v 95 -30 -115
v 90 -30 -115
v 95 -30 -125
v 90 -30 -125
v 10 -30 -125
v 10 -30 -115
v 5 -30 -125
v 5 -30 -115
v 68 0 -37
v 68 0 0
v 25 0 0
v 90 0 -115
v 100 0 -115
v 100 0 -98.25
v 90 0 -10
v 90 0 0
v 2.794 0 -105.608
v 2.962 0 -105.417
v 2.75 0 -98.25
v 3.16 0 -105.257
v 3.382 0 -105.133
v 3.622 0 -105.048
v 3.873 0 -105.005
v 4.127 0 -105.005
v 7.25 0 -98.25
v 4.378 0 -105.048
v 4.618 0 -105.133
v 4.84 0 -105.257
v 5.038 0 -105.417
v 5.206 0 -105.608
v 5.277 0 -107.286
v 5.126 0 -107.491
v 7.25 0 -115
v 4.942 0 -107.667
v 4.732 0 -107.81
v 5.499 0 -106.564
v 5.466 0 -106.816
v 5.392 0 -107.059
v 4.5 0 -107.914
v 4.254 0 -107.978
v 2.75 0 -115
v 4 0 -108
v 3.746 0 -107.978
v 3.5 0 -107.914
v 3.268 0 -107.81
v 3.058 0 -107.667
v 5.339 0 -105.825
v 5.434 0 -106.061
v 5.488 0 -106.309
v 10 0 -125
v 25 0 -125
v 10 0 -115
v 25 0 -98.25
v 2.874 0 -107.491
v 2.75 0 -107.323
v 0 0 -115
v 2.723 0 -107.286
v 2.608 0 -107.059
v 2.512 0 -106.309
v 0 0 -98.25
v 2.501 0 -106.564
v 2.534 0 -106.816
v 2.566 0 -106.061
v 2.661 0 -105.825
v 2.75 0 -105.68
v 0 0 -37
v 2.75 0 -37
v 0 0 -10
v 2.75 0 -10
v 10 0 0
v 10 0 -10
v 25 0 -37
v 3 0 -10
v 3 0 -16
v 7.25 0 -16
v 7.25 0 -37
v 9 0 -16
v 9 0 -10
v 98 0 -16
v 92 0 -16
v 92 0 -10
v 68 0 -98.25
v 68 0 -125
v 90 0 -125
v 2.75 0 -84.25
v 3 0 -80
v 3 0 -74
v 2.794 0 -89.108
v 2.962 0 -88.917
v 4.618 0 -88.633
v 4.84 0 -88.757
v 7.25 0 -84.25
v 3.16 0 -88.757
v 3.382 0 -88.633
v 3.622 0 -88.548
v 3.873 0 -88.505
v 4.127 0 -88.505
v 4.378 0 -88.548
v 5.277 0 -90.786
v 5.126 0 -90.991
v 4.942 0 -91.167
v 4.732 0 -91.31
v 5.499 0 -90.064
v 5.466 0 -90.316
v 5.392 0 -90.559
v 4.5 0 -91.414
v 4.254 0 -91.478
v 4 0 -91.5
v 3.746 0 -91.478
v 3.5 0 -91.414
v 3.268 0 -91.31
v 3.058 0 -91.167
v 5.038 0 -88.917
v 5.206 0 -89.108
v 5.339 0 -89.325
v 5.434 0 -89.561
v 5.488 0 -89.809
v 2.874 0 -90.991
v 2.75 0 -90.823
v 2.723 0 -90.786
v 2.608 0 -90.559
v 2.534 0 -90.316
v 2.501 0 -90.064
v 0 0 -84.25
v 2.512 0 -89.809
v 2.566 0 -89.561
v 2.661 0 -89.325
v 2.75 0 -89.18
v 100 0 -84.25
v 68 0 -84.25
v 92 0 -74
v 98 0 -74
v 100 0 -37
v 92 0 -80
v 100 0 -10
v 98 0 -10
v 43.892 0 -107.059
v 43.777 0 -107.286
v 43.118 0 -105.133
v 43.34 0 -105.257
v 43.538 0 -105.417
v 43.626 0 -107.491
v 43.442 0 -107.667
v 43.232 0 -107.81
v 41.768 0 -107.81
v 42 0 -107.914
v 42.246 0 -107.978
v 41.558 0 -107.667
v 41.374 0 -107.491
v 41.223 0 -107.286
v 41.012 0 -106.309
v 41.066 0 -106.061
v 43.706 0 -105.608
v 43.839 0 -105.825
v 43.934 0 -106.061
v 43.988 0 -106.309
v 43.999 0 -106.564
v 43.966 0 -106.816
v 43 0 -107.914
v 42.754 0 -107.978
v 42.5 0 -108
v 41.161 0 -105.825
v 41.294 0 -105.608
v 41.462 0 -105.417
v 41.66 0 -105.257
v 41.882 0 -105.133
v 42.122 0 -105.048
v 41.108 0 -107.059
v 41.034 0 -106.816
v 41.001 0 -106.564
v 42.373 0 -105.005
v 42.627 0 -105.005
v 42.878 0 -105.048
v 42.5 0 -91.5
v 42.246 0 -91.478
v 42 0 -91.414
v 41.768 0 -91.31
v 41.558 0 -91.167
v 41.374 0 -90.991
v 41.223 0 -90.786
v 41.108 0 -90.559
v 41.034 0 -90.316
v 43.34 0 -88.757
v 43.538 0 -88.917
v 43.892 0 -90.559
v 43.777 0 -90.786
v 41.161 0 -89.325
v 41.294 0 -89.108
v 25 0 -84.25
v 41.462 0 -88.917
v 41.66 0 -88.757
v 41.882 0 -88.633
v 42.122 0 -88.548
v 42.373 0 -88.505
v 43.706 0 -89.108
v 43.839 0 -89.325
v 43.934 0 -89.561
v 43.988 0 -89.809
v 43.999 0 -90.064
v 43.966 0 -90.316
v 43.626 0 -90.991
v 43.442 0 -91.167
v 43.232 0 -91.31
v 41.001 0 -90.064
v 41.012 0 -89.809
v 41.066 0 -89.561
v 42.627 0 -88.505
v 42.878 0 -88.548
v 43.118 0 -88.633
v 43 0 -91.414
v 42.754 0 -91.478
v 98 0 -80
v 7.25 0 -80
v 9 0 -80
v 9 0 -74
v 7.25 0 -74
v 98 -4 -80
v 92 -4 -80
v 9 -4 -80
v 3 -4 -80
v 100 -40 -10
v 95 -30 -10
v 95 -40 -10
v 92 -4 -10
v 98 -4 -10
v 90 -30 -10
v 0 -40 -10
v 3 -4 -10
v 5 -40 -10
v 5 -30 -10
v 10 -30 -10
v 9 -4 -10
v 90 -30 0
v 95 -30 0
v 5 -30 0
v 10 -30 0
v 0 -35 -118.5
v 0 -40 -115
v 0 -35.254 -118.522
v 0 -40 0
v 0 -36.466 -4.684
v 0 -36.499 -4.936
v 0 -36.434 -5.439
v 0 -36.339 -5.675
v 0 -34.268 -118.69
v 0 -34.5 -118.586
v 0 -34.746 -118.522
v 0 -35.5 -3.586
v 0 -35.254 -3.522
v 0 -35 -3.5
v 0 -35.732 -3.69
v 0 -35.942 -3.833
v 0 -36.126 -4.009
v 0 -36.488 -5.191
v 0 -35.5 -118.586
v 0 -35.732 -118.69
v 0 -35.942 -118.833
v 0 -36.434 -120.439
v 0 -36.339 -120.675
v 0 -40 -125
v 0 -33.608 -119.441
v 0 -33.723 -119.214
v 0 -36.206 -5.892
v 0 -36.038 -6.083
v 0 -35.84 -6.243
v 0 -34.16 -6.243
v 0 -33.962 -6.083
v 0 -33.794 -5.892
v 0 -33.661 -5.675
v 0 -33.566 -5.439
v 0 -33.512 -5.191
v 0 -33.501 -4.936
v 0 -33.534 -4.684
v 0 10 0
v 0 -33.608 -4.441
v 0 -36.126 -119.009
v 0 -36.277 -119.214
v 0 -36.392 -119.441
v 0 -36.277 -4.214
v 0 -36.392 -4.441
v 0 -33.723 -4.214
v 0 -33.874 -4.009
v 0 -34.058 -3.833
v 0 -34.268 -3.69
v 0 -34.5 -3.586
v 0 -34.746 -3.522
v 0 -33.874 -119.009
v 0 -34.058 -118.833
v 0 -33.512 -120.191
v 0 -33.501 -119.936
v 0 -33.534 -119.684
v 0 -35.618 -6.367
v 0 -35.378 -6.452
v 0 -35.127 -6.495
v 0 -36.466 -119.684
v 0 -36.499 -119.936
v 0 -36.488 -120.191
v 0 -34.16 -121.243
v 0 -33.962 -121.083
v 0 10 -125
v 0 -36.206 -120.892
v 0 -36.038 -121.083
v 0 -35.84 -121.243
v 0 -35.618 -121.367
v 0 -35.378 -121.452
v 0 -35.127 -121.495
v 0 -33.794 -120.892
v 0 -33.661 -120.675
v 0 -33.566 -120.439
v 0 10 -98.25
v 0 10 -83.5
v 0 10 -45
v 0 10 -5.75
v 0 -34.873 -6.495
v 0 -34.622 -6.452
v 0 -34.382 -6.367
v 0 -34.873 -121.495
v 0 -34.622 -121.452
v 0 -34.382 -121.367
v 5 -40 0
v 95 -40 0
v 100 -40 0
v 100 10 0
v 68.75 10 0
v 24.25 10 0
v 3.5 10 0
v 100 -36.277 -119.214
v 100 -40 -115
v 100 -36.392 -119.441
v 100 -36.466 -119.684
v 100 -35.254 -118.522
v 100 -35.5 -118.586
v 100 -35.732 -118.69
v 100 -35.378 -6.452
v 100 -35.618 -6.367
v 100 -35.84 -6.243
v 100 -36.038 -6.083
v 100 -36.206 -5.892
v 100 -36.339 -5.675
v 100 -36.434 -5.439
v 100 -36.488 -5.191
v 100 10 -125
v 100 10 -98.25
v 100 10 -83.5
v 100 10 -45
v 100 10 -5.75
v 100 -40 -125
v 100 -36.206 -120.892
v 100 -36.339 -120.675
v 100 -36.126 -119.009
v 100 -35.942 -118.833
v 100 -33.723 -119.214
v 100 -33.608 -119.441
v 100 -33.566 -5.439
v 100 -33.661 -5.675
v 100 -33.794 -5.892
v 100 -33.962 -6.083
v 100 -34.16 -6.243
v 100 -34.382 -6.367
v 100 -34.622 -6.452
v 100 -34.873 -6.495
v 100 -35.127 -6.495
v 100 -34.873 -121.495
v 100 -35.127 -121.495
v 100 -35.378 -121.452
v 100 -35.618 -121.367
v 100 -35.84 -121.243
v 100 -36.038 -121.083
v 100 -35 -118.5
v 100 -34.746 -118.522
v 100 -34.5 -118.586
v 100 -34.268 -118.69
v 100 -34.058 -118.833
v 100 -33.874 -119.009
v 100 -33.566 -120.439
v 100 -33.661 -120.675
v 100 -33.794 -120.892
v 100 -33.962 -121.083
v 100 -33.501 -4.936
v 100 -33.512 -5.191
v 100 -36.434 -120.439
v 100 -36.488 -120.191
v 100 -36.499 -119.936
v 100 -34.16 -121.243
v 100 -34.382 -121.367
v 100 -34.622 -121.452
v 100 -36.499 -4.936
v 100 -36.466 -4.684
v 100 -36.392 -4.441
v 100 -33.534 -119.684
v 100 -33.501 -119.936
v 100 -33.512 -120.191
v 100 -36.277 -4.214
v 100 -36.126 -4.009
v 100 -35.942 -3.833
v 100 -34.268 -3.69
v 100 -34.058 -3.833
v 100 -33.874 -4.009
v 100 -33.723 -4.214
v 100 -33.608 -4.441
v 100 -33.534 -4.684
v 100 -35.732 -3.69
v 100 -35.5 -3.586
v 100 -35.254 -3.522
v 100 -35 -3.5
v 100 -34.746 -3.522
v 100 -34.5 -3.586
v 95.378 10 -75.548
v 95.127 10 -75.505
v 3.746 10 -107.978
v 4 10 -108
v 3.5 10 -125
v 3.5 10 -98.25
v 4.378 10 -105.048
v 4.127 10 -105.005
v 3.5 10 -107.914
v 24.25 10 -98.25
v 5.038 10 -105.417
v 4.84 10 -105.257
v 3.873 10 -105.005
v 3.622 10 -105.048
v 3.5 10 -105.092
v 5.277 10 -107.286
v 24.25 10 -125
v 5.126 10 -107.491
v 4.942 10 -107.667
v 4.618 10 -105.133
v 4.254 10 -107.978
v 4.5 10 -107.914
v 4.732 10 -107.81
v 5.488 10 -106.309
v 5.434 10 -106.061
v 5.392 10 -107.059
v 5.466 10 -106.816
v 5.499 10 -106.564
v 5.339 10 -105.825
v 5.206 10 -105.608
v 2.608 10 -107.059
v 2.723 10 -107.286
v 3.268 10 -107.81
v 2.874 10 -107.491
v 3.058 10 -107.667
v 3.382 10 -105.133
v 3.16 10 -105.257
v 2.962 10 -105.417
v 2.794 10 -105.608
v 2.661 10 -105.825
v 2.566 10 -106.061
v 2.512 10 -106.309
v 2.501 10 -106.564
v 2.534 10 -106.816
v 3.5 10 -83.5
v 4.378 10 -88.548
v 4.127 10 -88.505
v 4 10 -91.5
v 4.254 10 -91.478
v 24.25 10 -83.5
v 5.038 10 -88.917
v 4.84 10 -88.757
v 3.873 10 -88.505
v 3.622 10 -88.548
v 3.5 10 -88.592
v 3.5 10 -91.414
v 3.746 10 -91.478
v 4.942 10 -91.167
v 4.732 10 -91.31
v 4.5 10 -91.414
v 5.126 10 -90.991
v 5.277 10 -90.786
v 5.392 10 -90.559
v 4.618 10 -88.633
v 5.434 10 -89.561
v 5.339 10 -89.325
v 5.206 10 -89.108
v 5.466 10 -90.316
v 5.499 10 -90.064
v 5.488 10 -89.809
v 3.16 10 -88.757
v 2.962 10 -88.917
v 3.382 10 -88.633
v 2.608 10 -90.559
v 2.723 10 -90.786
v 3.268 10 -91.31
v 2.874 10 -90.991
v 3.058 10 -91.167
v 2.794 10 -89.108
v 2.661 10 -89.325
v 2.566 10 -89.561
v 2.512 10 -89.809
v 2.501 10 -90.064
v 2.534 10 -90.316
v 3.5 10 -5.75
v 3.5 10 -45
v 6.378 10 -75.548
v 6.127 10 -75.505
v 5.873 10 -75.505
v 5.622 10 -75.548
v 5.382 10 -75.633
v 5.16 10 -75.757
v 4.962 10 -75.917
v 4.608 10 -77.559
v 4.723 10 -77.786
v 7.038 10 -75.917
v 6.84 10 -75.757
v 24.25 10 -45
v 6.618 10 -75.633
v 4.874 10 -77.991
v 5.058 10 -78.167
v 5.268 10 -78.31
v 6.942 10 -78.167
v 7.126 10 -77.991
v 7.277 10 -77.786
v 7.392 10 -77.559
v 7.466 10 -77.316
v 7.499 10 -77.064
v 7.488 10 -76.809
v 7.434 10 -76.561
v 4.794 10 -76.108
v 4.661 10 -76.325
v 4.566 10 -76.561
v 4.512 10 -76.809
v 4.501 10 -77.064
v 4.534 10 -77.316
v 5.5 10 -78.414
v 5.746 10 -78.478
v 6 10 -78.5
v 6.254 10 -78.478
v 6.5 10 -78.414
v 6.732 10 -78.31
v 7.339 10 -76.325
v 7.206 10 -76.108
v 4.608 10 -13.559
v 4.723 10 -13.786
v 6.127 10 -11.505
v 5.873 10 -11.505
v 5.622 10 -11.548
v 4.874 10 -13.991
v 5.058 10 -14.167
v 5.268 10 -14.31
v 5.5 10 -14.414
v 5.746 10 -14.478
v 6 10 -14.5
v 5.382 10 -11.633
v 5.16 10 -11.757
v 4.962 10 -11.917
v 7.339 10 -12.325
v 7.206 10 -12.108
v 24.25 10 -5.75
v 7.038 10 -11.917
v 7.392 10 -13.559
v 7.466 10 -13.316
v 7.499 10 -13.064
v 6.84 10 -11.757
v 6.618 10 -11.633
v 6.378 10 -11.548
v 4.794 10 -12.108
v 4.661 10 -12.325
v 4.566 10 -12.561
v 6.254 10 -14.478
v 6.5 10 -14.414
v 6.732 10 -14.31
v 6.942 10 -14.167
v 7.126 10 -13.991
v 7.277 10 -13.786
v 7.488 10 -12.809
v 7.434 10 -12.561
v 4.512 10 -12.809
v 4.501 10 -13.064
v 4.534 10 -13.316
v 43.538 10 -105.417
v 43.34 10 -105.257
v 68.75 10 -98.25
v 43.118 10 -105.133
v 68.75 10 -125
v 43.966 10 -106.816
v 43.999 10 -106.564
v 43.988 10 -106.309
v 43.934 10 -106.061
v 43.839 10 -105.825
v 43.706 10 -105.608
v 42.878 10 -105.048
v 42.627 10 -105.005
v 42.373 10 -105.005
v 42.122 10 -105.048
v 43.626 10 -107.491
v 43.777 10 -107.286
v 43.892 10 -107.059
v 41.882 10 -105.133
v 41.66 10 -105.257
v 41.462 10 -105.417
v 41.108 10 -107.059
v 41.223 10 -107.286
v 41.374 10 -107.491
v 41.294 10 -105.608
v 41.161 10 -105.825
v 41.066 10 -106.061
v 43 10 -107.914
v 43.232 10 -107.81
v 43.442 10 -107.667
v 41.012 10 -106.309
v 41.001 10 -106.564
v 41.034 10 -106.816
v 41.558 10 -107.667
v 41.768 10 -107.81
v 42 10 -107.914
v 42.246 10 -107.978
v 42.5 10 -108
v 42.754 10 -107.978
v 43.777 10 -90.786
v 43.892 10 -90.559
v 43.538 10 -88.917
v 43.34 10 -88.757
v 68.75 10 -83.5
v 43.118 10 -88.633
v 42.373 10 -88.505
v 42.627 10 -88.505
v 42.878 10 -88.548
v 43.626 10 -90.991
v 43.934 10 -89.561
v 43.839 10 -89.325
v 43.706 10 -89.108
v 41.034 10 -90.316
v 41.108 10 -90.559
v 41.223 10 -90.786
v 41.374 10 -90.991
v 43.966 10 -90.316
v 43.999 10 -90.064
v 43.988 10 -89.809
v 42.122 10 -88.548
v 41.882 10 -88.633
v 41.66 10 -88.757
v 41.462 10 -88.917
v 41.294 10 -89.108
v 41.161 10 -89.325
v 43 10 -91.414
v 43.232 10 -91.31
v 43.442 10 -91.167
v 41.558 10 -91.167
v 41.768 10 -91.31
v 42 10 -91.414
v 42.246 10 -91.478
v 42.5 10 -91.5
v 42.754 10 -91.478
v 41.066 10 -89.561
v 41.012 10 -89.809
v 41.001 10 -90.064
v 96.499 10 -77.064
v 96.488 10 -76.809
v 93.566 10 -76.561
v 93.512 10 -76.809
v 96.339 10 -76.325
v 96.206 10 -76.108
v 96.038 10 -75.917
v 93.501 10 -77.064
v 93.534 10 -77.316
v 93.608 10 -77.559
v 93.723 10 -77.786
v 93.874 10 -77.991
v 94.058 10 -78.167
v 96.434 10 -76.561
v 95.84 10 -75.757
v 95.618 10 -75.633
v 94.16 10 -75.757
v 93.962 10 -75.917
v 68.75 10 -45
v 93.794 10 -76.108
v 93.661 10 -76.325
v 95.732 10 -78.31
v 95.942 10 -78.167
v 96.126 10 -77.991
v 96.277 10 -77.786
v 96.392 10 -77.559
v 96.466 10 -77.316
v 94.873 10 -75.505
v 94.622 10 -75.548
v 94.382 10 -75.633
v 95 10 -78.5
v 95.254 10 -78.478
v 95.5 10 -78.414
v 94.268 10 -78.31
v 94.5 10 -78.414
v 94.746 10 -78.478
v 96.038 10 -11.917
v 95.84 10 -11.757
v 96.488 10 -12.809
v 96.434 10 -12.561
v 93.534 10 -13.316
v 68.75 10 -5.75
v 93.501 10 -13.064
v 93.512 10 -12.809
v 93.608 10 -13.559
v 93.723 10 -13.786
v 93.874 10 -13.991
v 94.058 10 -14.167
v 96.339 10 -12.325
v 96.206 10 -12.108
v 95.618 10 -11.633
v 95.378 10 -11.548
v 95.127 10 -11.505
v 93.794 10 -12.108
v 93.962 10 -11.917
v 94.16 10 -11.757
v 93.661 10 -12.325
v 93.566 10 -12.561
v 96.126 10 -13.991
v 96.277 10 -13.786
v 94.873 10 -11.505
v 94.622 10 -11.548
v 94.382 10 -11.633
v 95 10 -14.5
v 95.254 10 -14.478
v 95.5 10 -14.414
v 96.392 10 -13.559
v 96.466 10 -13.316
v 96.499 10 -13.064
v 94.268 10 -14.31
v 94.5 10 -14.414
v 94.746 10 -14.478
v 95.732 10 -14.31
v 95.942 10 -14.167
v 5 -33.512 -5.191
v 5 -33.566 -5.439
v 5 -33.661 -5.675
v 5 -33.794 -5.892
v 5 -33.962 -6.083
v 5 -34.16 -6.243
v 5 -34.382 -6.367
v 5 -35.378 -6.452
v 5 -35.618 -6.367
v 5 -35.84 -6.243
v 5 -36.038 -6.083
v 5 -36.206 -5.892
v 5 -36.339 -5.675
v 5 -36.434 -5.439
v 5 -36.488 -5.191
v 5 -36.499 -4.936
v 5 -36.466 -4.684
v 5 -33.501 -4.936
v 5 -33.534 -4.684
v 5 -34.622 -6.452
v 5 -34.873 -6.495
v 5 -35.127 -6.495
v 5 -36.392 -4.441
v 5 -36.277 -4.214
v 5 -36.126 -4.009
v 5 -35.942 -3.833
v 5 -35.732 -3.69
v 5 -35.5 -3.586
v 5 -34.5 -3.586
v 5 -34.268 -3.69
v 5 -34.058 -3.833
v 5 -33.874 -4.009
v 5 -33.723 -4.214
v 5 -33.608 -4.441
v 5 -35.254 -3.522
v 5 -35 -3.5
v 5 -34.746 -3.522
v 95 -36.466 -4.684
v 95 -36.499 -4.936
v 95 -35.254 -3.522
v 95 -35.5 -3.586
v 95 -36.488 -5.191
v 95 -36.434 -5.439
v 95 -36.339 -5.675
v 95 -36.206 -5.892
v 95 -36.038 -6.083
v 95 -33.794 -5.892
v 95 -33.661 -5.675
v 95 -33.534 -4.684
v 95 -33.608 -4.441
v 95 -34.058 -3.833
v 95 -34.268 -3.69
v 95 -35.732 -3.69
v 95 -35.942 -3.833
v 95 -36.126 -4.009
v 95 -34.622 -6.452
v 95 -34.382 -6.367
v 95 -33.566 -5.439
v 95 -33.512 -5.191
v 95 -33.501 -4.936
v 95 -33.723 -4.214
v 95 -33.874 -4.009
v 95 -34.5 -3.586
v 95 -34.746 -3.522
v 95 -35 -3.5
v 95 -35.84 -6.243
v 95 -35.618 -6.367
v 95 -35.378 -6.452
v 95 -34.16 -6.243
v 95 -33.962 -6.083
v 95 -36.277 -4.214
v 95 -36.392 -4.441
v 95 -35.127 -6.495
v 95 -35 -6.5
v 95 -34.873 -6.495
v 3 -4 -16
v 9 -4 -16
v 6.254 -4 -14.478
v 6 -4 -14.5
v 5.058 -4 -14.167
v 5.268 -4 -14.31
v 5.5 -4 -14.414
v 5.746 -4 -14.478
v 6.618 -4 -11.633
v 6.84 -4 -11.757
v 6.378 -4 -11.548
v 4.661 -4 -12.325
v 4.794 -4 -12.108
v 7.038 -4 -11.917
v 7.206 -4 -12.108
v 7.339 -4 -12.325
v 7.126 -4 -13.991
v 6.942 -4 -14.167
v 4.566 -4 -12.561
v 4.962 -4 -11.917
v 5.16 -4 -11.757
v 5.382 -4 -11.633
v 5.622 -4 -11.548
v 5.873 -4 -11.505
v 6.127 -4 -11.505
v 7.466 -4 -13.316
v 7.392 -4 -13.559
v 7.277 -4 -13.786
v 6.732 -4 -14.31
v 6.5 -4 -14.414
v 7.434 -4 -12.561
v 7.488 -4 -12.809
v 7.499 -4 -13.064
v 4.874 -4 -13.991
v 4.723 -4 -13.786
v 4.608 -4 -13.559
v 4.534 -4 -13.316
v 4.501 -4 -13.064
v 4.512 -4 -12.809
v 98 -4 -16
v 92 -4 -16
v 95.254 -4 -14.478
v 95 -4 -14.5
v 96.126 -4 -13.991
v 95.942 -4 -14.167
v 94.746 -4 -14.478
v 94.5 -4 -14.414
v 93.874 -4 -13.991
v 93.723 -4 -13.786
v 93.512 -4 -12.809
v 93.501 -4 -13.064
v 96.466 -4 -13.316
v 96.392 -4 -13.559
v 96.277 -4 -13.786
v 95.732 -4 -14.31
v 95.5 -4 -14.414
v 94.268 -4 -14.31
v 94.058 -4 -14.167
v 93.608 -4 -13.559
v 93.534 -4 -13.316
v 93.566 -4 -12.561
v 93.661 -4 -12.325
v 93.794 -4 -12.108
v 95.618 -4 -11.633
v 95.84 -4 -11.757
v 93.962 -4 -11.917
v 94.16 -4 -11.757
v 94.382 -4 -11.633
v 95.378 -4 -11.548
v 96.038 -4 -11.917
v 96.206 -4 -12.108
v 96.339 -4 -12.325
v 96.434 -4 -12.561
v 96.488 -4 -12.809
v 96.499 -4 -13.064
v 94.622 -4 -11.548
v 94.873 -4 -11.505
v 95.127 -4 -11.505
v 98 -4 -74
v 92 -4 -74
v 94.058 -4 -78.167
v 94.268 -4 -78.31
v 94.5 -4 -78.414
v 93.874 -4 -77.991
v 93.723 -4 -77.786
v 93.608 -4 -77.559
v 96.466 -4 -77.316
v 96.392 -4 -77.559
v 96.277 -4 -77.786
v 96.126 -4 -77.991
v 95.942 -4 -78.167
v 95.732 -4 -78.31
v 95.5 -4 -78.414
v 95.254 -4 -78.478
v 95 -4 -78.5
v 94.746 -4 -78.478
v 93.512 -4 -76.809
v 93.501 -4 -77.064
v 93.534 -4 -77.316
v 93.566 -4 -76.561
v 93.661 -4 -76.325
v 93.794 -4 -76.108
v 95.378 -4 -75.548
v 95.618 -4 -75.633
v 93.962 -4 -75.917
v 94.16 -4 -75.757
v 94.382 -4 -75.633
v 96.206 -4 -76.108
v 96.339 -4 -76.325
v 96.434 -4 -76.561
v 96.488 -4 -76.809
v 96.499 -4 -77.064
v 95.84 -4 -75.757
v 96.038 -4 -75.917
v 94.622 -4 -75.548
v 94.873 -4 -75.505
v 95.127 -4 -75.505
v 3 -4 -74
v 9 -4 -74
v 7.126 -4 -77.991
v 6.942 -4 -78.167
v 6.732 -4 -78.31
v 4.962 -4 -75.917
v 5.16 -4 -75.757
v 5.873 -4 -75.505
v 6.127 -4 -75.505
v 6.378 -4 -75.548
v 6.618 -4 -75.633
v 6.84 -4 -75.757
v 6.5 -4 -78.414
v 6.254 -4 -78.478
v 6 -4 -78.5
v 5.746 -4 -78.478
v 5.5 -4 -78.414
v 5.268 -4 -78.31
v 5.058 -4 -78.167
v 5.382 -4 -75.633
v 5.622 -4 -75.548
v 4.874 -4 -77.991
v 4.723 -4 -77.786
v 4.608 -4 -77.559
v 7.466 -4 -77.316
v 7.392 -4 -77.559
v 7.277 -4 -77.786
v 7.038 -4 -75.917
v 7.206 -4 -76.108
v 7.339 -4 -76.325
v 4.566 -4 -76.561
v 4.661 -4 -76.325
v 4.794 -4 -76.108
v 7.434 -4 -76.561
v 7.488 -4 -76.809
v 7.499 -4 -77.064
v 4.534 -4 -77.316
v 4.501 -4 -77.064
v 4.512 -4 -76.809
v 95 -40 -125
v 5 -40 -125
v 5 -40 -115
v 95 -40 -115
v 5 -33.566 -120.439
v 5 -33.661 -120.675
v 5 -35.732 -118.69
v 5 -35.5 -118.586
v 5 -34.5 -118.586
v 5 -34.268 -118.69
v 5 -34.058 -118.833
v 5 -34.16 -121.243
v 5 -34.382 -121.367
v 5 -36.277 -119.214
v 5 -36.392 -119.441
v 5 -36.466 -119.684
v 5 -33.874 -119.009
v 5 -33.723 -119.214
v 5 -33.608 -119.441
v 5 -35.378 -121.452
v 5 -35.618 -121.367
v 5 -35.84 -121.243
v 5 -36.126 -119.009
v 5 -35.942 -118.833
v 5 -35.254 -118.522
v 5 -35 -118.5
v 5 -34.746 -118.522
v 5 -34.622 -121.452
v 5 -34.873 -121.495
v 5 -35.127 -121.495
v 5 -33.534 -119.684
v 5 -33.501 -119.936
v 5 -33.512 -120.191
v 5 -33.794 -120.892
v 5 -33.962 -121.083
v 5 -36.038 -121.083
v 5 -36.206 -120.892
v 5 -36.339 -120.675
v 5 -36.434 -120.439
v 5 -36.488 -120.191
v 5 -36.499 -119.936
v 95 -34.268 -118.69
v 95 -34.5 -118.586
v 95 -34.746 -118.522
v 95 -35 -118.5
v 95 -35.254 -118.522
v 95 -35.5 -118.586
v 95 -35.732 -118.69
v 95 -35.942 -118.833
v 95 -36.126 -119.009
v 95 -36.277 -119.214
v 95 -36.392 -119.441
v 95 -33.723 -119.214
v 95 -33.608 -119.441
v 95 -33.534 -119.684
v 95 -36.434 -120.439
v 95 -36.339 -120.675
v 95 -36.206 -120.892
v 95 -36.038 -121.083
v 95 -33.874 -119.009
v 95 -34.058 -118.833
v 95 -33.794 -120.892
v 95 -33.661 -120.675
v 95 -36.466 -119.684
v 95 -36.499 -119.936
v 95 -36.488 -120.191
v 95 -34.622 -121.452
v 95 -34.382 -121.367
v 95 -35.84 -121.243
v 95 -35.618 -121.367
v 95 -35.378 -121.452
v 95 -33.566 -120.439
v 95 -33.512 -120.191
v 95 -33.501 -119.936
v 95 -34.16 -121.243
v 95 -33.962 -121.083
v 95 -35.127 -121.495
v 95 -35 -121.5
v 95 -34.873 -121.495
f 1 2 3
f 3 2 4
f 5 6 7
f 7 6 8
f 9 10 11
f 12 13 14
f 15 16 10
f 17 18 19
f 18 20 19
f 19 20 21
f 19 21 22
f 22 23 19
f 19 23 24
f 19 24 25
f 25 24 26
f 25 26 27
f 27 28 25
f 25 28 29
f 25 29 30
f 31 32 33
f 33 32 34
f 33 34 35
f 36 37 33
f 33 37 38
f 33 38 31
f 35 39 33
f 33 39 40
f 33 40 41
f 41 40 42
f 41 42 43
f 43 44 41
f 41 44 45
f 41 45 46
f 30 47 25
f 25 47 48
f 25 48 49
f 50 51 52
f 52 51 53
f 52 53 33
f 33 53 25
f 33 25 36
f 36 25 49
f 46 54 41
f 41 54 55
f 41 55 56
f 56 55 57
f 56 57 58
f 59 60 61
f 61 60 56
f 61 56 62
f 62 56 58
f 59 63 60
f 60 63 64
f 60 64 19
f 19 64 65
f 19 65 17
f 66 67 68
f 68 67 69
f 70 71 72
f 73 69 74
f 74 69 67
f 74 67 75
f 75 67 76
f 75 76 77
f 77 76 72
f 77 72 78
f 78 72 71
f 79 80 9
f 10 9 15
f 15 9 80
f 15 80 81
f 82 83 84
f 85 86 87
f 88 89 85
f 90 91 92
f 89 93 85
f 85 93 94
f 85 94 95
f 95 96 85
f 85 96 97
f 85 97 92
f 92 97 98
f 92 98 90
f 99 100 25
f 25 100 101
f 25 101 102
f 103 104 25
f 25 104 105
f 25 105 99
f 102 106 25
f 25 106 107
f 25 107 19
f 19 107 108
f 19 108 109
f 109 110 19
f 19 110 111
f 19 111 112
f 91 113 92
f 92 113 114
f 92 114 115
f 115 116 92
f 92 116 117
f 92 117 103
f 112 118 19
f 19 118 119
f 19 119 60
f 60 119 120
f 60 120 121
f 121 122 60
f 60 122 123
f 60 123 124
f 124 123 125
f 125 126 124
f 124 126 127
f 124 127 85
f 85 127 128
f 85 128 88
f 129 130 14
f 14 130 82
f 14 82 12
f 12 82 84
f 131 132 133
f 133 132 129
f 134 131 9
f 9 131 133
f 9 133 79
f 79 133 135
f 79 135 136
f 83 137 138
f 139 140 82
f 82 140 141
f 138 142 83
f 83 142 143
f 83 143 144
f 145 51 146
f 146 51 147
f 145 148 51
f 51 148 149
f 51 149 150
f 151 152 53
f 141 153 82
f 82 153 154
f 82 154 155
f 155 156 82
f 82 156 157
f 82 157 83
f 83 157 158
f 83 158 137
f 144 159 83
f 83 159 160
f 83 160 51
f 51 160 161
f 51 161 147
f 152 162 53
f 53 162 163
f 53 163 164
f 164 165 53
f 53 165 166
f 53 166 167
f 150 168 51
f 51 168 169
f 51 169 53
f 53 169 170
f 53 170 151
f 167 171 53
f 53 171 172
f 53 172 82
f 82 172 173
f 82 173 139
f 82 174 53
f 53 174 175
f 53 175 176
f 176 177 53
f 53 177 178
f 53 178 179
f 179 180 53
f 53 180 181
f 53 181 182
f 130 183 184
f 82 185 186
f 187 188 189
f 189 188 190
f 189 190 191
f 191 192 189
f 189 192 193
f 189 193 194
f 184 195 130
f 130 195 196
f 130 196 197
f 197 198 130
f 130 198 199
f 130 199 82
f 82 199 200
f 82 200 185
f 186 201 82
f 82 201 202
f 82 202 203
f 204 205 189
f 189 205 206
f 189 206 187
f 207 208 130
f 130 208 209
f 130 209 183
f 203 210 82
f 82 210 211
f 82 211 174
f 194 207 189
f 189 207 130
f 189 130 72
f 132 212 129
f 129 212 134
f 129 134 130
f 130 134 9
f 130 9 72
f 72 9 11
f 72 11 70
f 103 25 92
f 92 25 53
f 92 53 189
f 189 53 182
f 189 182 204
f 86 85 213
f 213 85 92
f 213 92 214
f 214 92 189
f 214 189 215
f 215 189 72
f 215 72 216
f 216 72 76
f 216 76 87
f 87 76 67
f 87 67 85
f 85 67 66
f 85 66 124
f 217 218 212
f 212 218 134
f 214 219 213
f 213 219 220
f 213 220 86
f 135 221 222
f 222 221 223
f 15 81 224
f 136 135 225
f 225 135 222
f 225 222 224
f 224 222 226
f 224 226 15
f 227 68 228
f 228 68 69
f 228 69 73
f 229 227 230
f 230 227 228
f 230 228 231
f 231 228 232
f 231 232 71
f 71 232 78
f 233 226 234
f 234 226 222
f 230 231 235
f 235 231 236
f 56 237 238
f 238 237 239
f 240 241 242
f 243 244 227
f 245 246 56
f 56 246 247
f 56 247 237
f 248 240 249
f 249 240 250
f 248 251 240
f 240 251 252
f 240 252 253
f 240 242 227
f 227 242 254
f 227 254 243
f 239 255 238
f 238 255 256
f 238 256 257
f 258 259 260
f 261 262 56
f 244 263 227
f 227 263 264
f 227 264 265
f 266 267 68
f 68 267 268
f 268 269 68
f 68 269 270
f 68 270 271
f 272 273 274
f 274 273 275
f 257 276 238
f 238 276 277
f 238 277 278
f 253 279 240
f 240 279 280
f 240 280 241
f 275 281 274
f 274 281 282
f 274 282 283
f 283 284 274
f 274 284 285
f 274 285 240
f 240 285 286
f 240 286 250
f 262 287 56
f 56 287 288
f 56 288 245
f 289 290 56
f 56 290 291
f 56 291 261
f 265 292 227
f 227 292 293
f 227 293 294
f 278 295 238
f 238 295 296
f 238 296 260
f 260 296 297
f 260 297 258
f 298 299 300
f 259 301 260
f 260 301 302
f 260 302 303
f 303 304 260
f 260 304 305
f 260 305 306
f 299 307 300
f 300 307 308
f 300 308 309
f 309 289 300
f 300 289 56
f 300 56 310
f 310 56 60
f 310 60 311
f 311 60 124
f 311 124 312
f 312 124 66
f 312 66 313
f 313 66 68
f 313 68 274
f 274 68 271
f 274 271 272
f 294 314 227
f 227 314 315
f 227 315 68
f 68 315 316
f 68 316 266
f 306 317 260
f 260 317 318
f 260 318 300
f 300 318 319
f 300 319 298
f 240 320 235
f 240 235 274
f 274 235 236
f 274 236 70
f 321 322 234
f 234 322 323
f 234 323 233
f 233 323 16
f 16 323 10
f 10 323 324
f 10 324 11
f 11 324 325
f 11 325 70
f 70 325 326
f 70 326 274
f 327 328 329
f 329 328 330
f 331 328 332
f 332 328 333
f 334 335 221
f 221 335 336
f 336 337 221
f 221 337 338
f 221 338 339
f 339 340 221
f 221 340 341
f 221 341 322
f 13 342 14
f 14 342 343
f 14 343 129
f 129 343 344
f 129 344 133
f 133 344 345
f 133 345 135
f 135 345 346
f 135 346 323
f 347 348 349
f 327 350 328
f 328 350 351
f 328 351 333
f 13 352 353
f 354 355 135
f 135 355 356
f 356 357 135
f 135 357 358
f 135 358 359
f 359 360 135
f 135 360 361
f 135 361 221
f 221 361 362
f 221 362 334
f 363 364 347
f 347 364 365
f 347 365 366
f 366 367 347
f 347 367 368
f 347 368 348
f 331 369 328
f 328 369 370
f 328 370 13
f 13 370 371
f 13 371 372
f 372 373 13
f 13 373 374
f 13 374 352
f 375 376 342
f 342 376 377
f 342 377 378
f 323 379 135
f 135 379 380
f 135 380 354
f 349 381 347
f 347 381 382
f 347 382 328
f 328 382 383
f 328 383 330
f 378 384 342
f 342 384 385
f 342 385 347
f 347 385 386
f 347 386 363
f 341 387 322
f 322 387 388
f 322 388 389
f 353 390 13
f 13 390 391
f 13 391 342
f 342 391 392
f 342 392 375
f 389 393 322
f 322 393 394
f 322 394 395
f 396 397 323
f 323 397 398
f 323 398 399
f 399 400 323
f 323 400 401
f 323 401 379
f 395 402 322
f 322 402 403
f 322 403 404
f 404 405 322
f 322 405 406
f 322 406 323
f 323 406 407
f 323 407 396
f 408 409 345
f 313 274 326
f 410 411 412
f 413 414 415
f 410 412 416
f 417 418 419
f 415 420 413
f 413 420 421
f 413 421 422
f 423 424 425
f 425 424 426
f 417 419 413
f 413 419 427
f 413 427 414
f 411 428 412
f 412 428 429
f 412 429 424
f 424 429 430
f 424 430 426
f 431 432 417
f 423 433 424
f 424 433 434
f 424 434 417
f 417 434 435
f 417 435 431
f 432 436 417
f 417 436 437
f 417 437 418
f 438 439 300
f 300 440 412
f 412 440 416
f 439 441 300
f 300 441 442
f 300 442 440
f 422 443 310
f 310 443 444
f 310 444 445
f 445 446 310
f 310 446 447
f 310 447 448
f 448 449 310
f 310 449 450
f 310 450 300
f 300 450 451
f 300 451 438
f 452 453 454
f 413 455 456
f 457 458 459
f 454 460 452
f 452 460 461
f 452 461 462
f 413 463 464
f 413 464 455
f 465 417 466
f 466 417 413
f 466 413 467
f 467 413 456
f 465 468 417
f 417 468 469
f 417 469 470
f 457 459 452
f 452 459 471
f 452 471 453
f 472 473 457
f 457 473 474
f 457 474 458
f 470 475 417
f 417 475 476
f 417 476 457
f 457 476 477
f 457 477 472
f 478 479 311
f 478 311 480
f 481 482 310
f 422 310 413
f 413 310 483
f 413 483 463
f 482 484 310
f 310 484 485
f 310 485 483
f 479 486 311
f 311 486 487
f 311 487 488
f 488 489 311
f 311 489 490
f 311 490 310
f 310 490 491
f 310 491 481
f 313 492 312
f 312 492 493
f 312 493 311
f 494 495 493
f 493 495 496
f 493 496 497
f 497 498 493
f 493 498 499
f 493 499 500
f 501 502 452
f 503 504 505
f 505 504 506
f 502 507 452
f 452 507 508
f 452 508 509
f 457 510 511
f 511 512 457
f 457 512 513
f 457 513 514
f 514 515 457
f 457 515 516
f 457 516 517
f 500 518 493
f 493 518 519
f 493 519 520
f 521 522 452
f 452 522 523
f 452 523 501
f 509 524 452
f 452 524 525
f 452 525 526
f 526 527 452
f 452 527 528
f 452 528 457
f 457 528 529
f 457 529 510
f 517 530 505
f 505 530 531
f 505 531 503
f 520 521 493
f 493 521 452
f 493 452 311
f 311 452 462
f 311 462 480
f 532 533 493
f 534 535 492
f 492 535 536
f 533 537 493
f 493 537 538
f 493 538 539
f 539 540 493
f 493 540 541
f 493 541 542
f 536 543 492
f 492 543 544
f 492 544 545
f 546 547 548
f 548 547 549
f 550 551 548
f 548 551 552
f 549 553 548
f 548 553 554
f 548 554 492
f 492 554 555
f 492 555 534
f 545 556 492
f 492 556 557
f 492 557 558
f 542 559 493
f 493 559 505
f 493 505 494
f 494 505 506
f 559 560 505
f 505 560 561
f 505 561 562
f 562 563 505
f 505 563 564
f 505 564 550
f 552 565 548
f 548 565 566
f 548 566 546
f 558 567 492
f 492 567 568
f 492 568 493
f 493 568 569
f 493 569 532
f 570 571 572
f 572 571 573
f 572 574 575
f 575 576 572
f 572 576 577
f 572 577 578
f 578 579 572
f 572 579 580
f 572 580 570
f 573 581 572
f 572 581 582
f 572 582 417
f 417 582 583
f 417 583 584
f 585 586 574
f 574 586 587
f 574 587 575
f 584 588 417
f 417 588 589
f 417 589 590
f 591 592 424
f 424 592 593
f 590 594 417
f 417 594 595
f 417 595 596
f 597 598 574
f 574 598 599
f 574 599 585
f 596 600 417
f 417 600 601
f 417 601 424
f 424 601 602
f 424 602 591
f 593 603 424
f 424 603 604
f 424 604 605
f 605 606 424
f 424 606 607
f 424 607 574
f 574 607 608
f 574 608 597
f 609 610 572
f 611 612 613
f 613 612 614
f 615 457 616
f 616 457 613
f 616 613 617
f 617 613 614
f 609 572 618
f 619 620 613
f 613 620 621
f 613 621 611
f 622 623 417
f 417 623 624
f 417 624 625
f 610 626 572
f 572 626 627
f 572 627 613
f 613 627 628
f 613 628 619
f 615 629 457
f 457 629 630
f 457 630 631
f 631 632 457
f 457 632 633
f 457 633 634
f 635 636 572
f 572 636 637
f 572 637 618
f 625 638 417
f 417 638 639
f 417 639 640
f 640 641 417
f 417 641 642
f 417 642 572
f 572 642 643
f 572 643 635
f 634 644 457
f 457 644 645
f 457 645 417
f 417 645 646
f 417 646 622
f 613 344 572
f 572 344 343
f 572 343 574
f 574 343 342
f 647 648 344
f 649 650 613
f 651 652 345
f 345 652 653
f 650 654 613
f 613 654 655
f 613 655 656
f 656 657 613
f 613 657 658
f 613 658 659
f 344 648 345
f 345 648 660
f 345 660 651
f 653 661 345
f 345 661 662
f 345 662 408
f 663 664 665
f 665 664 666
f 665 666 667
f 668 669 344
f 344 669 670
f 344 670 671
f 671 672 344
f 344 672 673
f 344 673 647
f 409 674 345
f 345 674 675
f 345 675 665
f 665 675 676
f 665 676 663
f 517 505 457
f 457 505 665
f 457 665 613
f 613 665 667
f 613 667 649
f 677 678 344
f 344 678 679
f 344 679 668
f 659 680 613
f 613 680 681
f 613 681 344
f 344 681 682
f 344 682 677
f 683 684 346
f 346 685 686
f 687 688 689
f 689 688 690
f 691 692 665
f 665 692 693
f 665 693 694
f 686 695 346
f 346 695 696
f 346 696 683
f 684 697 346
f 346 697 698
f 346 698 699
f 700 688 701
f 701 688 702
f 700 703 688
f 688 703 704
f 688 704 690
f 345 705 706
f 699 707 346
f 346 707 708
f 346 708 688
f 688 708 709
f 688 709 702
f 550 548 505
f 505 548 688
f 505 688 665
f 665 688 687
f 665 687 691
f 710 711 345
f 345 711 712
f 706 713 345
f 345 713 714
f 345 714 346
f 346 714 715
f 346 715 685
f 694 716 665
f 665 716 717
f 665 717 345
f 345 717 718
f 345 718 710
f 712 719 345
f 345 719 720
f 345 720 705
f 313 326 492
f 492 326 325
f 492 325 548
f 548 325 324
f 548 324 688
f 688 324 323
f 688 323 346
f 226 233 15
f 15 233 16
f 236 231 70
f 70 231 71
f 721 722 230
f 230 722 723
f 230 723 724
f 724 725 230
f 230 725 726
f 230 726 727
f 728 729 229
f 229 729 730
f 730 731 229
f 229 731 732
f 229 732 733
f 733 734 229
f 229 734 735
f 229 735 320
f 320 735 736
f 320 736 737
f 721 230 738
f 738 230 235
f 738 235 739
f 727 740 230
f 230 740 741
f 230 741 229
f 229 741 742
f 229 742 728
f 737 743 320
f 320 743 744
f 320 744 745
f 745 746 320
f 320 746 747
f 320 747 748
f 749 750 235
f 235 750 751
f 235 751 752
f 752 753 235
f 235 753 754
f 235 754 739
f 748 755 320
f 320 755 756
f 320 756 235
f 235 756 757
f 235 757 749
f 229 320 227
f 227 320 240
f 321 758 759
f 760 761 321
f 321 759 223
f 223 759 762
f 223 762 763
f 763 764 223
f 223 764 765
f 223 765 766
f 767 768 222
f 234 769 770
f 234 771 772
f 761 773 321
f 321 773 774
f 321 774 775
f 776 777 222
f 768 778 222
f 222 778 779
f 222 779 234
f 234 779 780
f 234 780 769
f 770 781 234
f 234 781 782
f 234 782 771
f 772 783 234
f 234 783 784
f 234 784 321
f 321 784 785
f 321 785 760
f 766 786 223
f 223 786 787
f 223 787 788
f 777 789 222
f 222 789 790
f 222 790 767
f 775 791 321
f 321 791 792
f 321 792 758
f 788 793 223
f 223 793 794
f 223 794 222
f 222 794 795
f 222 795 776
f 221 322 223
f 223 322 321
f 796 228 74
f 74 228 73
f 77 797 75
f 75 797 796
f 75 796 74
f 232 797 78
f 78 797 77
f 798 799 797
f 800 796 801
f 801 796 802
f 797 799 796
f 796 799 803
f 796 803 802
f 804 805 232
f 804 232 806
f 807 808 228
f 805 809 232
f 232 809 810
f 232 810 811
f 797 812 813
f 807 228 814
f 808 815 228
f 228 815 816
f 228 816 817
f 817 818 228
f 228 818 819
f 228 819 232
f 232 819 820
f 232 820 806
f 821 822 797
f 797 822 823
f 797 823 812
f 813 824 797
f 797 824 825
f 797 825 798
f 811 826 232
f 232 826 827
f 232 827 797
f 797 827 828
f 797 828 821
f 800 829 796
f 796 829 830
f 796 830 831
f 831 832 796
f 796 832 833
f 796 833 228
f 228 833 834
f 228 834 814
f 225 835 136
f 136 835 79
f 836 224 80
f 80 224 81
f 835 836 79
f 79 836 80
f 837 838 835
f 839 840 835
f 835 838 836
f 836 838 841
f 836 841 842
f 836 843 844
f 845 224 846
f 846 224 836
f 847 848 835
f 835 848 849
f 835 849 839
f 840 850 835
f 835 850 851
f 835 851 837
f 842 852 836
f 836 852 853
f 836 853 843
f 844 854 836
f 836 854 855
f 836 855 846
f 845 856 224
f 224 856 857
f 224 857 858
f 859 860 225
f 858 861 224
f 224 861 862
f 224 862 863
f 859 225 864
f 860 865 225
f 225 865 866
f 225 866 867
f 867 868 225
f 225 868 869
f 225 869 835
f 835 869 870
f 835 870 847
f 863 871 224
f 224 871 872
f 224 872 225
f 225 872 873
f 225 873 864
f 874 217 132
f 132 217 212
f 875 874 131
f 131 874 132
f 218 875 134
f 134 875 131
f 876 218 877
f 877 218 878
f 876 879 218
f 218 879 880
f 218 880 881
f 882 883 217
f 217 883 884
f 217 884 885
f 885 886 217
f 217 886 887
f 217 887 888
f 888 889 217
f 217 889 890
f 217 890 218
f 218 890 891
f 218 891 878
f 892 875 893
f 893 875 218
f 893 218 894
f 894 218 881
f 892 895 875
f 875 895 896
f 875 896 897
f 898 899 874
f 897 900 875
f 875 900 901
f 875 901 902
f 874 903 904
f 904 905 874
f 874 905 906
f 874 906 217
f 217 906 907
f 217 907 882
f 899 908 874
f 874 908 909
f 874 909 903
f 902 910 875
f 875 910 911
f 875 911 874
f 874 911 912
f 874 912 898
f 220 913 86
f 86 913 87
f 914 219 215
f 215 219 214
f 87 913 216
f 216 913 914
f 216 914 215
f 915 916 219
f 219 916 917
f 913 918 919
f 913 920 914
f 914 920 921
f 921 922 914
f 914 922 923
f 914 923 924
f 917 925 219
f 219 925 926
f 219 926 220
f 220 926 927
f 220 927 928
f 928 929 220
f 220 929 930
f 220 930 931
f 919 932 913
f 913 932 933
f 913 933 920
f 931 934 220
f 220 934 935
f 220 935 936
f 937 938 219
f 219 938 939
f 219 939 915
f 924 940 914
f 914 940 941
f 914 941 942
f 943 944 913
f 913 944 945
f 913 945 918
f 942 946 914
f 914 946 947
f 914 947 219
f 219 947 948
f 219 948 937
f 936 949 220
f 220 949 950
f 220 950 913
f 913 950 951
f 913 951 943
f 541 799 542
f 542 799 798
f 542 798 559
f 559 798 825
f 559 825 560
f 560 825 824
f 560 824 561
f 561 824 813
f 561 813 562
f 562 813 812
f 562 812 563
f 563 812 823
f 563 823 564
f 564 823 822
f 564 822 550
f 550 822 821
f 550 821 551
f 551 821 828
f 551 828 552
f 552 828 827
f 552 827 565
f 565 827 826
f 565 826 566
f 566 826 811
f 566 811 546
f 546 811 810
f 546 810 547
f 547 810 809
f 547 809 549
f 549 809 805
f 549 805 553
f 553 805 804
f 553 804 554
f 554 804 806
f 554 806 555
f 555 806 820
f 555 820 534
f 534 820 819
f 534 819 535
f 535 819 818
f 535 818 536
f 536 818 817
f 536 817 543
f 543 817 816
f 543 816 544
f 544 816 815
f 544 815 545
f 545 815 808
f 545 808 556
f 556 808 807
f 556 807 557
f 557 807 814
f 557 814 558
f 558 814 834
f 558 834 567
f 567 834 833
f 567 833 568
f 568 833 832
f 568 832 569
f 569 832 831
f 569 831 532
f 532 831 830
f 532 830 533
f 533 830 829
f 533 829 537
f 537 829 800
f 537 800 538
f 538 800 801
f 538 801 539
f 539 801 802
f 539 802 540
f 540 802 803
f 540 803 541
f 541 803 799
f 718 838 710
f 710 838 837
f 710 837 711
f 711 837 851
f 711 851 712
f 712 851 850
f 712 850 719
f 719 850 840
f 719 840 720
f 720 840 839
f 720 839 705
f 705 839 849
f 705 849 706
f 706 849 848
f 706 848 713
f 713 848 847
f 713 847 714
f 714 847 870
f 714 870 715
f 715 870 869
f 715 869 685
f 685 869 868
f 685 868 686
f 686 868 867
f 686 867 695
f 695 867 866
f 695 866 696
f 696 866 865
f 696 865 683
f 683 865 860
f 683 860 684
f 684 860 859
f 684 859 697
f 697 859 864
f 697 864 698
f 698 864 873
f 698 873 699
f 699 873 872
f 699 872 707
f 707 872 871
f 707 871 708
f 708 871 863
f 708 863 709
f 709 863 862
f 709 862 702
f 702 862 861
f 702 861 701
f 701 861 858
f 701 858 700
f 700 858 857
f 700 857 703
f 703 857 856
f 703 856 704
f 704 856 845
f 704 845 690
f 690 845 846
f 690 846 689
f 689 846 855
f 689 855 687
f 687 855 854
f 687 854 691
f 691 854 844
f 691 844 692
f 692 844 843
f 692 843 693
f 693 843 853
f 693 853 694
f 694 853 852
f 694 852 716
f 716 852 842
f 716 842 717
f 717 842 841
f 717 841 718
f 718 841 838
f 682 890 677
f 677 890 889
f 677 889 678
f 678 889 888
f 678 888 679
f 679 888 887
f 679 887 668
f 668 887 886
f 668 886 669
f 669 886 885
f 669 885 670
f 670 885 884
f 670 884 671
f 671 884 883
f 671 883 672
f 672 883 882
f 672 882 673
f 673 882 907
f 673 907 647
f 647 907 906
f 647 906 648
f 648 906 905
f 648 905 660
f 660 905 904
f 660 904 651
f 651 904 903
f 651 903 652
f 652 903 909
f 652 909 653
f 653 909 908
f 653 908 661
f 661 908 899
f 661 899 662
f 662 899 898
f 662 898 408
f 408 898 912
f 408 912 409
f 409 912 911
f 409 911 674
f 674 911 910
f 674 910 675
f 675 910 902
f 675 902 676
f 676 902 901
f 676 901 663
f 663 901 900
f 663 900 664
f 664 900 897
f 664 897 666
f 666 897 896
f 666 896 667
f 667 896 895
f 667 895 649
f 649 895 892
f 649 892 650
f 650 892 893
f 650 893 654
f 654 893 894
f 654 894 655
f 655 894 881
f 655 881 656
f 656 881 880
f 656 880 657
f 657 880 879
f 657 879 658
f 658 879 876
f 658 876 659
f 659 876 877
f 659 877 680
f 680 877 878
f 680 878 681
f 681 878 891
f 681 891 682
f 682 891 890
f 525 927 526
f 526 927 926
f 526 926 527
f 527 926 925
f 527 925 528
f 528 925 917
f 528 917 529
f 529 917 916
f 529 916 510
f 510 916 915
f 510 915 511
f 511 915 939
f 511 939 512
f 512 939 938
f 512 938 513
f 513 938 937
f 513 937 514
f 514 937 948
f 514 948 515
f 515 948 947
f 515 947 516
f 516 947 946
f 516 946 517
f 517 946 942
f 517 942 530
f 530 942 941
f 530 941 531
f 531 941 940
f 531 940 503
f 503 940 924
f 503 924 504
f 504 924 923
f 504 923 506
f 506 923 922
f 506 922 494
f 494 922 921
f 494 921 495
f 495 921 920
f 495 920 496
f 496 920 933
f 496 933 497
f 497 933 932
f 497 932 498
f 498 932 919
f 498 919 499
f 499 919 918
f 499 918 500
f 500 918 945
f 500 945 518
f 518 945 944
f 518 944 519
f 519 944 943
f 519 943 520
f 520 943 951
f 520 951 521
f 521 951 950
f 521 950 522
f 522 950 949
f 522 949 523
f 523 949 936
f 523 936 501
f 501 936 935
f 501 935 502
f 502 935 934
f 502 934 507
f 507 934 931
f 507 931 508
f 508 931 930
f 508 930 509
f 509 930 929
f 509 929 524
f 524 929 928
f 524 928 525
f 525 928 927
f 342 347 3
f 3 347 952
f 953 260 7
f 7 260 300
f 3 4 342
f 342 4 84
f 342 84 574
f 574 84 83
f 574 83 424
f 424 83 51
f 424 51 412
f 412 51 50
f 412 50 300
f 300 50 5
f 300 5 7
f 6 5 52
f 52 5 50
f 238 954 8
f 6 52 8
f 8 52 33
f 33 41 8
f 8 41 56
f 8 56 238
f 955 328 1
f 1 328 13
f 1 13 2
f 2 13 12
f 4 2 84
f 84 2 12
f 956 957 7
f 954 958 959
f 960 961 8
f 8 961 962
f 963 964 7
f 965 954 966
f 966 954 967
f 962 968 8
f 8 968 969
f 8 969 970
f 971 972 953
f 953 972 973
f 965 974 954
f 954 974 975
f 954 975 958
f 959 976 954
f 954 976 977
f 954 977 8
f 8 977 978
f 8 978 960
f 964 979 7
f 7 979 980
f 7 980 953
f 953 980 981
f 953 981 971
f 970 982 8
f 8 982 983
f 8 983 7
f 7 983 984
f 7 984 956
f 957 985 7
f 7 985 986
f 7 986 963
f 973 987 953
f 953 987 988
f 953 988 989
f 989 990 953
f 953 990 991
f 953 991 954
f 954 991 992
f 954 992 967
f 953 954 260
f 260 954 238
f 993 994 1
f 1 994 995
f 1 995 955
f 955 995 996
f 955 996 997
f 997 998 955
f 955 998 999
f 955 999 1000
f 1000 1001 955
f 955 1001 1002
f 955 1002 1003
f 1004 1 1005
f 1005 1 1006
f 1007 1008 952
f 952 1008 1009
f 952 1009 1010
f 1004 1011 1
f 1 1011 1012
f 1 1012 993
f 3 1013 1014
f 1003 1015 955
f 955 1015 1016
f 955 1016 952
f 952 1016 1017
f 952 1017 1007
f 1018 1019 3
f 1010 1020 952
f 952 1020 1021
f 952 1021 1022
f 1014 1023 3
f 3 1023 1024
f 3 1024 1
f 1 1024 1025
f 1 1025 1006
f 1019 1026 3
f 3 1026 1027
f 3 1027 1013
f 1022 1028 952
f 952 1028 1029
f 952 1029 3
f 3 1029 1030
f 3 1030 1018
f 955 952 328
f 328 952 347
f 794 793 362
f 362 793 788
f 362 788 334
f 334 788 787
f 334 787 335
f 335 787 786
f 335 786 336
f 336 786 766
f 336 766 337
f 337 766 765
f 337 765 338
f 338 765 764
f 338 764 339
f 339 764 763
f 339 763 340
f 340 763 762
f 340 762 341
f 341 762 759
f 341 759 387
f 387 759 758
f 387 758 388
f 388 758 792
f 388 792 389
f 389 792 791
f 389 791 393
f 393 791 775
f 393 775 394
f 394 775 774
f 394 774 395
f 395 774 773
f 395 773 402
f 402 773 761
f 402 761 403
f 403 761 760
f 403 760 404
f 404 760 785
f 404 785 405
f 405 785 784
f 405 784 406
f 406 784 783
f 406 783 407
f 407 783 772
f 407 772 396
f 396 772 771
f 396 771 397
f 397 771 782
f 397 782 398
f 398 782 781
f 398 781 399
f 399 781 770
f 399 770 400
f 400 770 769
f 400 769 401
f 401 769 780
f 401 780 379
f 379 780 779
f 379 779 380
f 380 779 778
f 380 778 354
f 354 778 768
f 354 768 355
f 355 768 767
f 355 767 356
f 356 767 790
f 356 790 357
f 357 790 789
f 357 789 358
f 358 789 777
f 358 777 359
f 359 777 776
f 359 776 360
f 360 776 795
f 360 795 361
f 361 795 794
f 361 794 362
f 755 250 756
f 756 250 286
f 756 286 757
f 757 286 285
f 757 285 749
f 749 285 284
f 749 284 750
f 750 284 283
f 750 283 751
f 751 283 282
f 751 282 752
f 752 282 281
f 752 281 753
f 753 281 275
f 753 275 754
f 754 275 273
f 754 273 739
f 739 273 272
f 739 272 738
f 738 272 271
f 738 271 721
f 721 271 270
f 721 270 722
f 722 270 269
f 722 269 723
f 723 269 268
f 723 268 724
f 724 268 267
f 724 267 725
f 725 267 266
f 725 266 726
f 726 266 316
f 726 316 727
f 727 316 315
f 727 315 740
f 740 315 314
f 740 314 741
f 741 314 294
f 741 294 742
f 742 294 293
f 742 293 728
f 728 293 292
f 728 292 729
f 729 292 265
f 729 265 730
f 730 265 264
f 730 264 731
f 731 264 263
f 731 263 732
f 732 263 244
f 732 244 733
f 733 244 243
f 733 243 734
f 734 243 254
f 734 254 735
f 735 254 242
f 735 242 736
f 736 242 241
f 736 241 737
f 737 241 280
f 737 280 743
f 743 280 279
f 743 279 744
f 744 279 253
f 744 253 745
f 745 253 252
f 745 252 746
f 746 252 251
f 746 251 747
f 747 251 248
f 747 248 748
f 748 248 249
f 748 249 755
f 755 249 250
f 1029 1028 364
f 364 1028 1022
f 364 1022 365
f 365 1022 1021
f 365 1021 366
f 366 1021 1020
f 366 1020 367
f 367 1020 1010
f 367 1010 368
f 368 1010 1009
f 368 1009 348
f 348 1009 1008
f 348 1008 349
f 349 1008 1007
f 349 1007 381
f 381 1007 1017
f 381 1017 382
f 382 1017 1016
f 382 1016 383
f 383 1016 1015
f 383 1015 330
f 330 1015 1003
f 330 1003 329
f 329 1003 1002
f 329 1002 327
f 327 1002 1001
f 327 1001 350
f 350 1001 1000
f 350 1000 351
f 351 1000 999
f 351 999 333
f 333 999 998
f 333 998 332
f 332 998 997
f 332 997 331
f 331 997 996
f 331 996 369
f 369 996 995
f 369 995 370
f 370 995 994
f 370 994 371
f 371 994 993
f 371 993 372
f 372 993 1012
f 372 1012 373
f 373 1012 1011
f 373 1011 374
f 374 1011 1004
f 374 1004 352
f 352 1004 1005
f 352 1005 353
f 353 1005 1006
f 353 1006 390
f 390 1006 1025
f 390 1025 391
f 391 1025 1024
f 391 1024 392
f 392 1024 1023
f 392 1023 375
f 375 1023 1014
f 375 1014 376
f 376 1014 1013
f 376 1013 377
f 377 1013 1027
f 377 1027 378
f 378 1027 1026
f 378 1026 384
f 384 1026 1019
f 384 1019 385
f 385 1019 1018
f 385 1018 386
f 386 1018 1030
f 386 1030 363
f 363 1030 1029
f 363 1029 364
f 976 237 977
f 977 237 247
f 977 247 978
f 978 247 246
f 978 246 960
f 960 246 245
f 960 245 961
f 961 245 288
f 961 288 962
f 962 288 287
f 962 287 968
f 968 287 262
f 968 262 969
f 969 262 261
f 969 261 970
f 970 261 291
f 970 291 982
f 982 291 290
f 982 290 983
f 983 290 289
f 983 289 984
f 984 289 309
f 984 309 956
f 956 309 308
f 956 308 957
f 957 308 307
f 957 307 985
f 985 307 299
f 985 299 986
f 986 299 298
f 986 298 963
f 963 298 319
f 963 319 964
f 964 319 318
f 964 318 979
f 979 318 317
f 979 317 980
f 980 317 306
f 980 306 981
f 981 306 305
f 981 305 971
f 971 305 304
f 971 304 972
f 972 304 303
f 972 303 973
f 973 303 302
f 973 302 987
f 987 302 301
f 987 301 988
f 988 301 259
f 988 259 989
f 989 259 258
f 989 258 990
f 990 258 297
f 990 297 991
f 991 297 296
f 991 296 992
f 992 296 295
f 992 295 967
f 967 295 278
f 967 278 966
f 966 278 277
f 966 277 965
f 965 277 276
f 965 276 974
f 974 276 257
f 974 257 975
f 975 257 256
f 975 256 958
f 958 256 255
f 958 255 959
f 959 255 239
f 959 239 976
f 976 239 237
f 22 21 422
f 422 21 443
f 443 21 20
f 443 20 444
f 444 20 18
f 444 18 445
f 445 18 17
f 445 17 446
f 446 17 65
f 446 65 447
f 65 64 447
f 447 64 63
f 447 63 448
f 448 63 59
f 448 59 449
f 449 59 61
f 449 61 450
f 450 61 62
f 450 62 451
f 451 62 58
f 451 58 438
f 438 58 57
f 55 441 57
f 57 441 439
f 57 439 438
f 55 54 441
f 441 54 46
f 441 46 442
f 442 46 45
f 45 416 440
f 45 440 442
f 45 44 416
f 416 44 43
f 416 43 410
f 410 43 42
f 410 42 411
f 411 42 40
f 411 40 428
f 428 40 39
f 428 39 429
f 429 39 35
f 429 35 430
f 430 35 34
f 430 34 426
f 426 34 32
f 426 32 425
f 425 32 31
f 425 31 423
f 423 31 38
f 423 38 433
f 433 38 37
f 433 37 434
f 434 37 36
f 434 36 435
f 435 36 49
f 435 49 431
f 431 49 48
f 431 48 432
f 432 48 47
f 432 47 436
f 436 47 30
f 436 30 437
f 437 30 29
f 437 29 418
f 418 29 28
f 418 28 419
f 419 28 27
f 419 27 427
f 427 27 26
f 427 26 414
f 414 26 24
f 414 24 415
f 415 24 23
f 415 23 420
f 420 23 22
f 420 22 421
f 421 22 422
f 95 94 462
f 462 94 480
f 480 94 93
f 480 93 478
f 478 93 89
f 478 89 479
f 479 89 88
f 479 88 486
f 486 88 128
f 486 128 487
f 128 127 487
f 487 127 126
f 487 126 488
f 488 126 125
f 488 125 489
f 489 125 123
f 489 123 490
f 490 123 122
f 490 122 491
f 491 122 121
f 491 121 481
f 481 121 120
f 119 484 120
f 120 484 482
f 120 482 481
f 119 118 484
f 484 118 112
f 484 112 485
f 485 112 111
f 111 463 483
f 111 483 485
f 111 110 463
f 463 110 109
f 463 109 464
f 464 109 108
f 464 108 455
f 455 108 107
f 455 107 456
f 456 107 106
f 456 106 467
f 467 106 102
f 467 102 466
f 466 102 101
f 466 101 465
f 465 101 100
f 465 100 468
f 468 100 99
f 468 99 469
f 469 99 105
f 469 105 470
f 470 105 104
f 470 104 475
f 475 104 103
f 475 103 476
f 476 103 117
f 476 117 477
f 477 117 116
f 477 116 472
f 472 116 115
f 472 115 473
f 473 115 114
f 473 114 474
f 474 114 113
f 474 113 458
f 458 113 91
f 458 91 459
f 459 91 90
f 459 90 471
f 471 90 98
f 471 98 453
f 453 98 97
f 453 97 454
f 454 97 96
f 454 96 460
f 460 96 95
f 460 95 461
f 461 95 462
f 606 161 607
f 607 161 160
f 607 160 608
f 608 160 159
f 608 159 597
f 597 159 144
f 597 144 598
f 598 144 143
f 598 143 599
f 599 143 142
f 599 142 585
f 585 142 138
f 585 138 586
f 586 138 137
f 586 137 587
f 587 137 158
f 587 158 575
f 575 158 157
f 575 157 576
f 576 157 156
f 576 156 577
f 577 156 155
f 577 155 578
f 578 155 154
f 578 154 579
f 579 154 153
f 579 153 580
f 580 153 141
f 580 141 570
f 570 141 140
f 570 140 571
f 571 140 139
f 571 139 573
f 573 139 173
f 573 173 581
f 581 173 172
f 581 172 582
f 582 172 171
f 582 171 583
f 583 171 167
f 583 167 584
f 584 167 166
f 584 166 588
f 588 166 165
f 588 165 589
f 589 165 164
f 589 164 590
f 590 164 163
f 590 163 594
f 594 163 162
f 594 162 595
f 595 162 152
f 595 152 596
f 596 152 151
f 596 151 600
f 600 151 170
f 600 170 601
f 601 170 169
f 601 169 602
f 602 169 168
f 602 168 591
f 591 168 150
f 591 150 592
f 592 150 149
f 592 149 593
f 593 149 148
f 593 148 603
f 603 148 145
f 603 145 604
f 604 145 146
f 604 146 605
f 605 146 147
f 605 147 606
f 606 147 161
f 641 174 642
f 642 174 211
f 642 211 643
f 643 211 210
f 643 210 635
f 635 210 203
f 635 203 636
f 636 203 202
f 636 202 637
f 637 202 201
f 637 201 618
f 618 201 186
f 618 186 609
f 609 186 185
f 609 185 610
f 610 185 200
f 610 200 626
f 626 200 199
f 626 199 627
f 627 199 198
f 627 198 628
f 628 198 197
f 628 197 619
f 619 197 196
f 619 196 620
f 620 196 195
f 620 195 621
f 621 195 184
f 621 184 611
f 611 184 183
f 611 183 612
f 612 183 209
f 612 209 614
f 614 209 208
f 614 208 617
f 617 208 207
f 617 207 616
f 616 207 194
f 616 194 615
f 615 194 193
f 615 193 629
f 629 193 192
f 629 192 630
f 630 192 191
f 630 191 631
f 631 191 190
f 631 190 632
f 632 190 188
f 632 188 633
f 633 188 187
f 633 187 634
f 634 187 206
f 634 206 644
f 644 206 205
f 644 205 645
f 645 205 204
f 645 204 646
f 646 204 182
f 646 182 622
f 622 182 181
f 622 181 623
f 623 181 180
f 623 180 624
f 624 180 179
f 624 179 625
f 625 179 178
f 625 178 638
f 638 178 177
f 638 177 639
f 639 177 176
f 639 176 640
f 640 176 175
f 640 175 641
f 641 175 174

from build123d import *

# Parameters (mm, degrees)
SKETCH2_W           = 100
SKETCH2_H           = 80
BOSS_EXTRUDE1_DEPTH = 10
SKETCH3_W           = 10
SKETCH3_H           = 10
BOSS_EXTRUDE2_DEPTH = 30
SKETCH4_W           = 5
SKETCH4_H           = 10
BOSS_EXTRUDE3_DEPTH = 10
SKETCH5_W           = 6
SKETCH5_H           = 6
BOSS_EXTRUDE4_DEPTH = 4
SKETCH6_R           = 1.5
CUT_EXTRUDE1_DEPTH  = 134.026313187
SKETCH7_W           = 100
SKETCH7_H           = 10
BOSS_EXTRUDE5_DEPTH = 45
SKETCH8_W           = 10
SKETCH8_H           = 10
BOSS_EXTRUDE6_DEPTH = 30
SKETCH9_W           = 5
SKETCH9_H           = 10
BOSS_EXTRUDE7_DEPTH = 10
SKETCH10_R          = 1.5
CUT_EXTRUDE2_DEPTH  = 166
SKETCH11_R          = 1.5
CUT_EXTRUDE3_DEPTH  = 10


with BuildPart() as part:
    # Sketch2 → Boss-Extrude1 (new body)
    with BuildSketch(Plane(origin=(0, 0, 0), x_dir=(1, 0, 0), z_dir=(0, 1, 0))):
        with Locations((50, 40)):
            Rectangle(SKETCH2_W, SKETCH2_H)
    extrude(amount=BOSS_EXTRUDE1_DEPTH)

    # Sketch3 → Boss-Extrude2 (add)
    with BuildSketch(Plane.XZ):
        with Locations((95, -5)):
            Rectangle(SKETCH3_W, SKETCH3_H)
        with Locations((5, -5)):
            Rectangle(SKETCH3_W, SKETCH3_H)
    extrude(amount=BOSS_EXTRUDE2_DEPTH)

    # Sketch4 → Boss-Extrude3 (add)
    with BuildSketch(Plane.XZ.offset(30)):
        with Locations((2.5, -5)):
            Rectangle(SKETCH4_W, SKETCH4_H)
        with Locations((97.5, -5)):
            Rectangle(SKETCH4_W, SKETCH4_H)
    extrude(amount=BOSS_EXTRUDE3_DEPTH)

    # Sketch5 → Boss-Extrude4 (add)
    with BuildSketch(Plane.XZ):
        with Locations((6, -13)):
            Rectangle(SKETCH5_W, SKETCH5_H)
        with Locations((95, -13)):
            Rectangle(SKETCH5_W, SKETCH5_H)
        with Locations((95, -77)):
            Rectangle(SKETCH5_W, SKETCH5_H)
        with Locations((6, -77)):
            Rectangle(SKETCH5_W, SKETCH5_H)
    extrude(amount=BOSS_EXTRUDE4_DEPTH)

    # Sketch6 → Cut-Extrude1 (cut, through all)
    with BuildSketch(Plane.XZ.offset(4)):
        with Locations(Location((6, -13, 0), (0, 0, 270))):
            Circle(SKETCH6_R)
        with Locations(Location((95, -13, 0), (0, 0, 270))):
            Circle(SKETCH6_R)
        with Locations(Location((95, -77, 0), (0, 0, 270))):
            Circle(SKETCH6_R)
        with Locations(Location((6, -77, 0), (0, 0, 270))):
            Circle(SKETCH6_R)
    extrude(amount=-CUT_EXTRUDE1_DEPTH, mode=Mode.SUBTRACT)

    # Sketch7 → Boss-Extrude5 (add)
    with BuildSketch(Plane(origin=(0, 0, -80), x_dir=(-1, 0, 0), z_dir=(0, 0, -1))):
        with Locations((-50, 5)):
            Rectangle(SKETCH7_W, SKETCH7_H)
    extrude(amount=BOSS_EXTRUDE5_DEPTH)

    # Sketch8 → Boss-Extrude6 (add)
    with BuildSketch(Plane.XZ):
        with Locations((5, -120)):
            Rectangle(SKETCH8_W, SKETCH8_H)
        with Locations((95, -120)):
            Rectangle(SKETCH8_W, SKETCH8_H)
    extrude(amount=BOSS_EXTRUDE6_DEPTH)

    # Sketch9 → Boss-Extrude7 (add)
    with BuildSketch(Plane.XZ.offset(30)):
        with Locations((2.5, -120)):
            Rectangle(SKETCH9_W, SKETCH9_H)
        with Locations((97.5, -120)):
            Rectangle(SKETCH9_W, SKETCH9_H)
    extrude(amount=BOSS_EXTRUDE7_DEPTH)

    # Sketch10 → Cut-Extrude2 (cut, through all)
    with BuildSketch(Plane.ZY):
        with Locations((-5, -35)):
            Circle(SKETCH10_R)
        with Locations((-120, -35)):
            Circle(SKETCH10_R)
    extrude(amount=-CUT_EXTRUDE2_DEPTH, mode=Mode.SUBTRACT)

    # Sketch11 → Cut-Extrude3 (cut)
    with BuildSketch(Plane.XZ):
        with Locations(Location((4, -106.5, 0), (0, 0, 270))):
            Circle(SKETCH11_R)
        with Locations(Location((4, -90, 0), (0, 0, 270))):
            Circle(SKETCH11_R)
        with Locations(Location((42.5, -106.5, 0), (0, 0, 270))):
            Circle(SKETCH11_R)
        with Locations(Location((42.5, -90, 0), (0, 0, 270))):
            Circle(SKETCH11_R)
    extrude(amount=-CUT_EXTRUDE3_DEPTH, mode=Mode.SUBTRACT)


solid = part.part
